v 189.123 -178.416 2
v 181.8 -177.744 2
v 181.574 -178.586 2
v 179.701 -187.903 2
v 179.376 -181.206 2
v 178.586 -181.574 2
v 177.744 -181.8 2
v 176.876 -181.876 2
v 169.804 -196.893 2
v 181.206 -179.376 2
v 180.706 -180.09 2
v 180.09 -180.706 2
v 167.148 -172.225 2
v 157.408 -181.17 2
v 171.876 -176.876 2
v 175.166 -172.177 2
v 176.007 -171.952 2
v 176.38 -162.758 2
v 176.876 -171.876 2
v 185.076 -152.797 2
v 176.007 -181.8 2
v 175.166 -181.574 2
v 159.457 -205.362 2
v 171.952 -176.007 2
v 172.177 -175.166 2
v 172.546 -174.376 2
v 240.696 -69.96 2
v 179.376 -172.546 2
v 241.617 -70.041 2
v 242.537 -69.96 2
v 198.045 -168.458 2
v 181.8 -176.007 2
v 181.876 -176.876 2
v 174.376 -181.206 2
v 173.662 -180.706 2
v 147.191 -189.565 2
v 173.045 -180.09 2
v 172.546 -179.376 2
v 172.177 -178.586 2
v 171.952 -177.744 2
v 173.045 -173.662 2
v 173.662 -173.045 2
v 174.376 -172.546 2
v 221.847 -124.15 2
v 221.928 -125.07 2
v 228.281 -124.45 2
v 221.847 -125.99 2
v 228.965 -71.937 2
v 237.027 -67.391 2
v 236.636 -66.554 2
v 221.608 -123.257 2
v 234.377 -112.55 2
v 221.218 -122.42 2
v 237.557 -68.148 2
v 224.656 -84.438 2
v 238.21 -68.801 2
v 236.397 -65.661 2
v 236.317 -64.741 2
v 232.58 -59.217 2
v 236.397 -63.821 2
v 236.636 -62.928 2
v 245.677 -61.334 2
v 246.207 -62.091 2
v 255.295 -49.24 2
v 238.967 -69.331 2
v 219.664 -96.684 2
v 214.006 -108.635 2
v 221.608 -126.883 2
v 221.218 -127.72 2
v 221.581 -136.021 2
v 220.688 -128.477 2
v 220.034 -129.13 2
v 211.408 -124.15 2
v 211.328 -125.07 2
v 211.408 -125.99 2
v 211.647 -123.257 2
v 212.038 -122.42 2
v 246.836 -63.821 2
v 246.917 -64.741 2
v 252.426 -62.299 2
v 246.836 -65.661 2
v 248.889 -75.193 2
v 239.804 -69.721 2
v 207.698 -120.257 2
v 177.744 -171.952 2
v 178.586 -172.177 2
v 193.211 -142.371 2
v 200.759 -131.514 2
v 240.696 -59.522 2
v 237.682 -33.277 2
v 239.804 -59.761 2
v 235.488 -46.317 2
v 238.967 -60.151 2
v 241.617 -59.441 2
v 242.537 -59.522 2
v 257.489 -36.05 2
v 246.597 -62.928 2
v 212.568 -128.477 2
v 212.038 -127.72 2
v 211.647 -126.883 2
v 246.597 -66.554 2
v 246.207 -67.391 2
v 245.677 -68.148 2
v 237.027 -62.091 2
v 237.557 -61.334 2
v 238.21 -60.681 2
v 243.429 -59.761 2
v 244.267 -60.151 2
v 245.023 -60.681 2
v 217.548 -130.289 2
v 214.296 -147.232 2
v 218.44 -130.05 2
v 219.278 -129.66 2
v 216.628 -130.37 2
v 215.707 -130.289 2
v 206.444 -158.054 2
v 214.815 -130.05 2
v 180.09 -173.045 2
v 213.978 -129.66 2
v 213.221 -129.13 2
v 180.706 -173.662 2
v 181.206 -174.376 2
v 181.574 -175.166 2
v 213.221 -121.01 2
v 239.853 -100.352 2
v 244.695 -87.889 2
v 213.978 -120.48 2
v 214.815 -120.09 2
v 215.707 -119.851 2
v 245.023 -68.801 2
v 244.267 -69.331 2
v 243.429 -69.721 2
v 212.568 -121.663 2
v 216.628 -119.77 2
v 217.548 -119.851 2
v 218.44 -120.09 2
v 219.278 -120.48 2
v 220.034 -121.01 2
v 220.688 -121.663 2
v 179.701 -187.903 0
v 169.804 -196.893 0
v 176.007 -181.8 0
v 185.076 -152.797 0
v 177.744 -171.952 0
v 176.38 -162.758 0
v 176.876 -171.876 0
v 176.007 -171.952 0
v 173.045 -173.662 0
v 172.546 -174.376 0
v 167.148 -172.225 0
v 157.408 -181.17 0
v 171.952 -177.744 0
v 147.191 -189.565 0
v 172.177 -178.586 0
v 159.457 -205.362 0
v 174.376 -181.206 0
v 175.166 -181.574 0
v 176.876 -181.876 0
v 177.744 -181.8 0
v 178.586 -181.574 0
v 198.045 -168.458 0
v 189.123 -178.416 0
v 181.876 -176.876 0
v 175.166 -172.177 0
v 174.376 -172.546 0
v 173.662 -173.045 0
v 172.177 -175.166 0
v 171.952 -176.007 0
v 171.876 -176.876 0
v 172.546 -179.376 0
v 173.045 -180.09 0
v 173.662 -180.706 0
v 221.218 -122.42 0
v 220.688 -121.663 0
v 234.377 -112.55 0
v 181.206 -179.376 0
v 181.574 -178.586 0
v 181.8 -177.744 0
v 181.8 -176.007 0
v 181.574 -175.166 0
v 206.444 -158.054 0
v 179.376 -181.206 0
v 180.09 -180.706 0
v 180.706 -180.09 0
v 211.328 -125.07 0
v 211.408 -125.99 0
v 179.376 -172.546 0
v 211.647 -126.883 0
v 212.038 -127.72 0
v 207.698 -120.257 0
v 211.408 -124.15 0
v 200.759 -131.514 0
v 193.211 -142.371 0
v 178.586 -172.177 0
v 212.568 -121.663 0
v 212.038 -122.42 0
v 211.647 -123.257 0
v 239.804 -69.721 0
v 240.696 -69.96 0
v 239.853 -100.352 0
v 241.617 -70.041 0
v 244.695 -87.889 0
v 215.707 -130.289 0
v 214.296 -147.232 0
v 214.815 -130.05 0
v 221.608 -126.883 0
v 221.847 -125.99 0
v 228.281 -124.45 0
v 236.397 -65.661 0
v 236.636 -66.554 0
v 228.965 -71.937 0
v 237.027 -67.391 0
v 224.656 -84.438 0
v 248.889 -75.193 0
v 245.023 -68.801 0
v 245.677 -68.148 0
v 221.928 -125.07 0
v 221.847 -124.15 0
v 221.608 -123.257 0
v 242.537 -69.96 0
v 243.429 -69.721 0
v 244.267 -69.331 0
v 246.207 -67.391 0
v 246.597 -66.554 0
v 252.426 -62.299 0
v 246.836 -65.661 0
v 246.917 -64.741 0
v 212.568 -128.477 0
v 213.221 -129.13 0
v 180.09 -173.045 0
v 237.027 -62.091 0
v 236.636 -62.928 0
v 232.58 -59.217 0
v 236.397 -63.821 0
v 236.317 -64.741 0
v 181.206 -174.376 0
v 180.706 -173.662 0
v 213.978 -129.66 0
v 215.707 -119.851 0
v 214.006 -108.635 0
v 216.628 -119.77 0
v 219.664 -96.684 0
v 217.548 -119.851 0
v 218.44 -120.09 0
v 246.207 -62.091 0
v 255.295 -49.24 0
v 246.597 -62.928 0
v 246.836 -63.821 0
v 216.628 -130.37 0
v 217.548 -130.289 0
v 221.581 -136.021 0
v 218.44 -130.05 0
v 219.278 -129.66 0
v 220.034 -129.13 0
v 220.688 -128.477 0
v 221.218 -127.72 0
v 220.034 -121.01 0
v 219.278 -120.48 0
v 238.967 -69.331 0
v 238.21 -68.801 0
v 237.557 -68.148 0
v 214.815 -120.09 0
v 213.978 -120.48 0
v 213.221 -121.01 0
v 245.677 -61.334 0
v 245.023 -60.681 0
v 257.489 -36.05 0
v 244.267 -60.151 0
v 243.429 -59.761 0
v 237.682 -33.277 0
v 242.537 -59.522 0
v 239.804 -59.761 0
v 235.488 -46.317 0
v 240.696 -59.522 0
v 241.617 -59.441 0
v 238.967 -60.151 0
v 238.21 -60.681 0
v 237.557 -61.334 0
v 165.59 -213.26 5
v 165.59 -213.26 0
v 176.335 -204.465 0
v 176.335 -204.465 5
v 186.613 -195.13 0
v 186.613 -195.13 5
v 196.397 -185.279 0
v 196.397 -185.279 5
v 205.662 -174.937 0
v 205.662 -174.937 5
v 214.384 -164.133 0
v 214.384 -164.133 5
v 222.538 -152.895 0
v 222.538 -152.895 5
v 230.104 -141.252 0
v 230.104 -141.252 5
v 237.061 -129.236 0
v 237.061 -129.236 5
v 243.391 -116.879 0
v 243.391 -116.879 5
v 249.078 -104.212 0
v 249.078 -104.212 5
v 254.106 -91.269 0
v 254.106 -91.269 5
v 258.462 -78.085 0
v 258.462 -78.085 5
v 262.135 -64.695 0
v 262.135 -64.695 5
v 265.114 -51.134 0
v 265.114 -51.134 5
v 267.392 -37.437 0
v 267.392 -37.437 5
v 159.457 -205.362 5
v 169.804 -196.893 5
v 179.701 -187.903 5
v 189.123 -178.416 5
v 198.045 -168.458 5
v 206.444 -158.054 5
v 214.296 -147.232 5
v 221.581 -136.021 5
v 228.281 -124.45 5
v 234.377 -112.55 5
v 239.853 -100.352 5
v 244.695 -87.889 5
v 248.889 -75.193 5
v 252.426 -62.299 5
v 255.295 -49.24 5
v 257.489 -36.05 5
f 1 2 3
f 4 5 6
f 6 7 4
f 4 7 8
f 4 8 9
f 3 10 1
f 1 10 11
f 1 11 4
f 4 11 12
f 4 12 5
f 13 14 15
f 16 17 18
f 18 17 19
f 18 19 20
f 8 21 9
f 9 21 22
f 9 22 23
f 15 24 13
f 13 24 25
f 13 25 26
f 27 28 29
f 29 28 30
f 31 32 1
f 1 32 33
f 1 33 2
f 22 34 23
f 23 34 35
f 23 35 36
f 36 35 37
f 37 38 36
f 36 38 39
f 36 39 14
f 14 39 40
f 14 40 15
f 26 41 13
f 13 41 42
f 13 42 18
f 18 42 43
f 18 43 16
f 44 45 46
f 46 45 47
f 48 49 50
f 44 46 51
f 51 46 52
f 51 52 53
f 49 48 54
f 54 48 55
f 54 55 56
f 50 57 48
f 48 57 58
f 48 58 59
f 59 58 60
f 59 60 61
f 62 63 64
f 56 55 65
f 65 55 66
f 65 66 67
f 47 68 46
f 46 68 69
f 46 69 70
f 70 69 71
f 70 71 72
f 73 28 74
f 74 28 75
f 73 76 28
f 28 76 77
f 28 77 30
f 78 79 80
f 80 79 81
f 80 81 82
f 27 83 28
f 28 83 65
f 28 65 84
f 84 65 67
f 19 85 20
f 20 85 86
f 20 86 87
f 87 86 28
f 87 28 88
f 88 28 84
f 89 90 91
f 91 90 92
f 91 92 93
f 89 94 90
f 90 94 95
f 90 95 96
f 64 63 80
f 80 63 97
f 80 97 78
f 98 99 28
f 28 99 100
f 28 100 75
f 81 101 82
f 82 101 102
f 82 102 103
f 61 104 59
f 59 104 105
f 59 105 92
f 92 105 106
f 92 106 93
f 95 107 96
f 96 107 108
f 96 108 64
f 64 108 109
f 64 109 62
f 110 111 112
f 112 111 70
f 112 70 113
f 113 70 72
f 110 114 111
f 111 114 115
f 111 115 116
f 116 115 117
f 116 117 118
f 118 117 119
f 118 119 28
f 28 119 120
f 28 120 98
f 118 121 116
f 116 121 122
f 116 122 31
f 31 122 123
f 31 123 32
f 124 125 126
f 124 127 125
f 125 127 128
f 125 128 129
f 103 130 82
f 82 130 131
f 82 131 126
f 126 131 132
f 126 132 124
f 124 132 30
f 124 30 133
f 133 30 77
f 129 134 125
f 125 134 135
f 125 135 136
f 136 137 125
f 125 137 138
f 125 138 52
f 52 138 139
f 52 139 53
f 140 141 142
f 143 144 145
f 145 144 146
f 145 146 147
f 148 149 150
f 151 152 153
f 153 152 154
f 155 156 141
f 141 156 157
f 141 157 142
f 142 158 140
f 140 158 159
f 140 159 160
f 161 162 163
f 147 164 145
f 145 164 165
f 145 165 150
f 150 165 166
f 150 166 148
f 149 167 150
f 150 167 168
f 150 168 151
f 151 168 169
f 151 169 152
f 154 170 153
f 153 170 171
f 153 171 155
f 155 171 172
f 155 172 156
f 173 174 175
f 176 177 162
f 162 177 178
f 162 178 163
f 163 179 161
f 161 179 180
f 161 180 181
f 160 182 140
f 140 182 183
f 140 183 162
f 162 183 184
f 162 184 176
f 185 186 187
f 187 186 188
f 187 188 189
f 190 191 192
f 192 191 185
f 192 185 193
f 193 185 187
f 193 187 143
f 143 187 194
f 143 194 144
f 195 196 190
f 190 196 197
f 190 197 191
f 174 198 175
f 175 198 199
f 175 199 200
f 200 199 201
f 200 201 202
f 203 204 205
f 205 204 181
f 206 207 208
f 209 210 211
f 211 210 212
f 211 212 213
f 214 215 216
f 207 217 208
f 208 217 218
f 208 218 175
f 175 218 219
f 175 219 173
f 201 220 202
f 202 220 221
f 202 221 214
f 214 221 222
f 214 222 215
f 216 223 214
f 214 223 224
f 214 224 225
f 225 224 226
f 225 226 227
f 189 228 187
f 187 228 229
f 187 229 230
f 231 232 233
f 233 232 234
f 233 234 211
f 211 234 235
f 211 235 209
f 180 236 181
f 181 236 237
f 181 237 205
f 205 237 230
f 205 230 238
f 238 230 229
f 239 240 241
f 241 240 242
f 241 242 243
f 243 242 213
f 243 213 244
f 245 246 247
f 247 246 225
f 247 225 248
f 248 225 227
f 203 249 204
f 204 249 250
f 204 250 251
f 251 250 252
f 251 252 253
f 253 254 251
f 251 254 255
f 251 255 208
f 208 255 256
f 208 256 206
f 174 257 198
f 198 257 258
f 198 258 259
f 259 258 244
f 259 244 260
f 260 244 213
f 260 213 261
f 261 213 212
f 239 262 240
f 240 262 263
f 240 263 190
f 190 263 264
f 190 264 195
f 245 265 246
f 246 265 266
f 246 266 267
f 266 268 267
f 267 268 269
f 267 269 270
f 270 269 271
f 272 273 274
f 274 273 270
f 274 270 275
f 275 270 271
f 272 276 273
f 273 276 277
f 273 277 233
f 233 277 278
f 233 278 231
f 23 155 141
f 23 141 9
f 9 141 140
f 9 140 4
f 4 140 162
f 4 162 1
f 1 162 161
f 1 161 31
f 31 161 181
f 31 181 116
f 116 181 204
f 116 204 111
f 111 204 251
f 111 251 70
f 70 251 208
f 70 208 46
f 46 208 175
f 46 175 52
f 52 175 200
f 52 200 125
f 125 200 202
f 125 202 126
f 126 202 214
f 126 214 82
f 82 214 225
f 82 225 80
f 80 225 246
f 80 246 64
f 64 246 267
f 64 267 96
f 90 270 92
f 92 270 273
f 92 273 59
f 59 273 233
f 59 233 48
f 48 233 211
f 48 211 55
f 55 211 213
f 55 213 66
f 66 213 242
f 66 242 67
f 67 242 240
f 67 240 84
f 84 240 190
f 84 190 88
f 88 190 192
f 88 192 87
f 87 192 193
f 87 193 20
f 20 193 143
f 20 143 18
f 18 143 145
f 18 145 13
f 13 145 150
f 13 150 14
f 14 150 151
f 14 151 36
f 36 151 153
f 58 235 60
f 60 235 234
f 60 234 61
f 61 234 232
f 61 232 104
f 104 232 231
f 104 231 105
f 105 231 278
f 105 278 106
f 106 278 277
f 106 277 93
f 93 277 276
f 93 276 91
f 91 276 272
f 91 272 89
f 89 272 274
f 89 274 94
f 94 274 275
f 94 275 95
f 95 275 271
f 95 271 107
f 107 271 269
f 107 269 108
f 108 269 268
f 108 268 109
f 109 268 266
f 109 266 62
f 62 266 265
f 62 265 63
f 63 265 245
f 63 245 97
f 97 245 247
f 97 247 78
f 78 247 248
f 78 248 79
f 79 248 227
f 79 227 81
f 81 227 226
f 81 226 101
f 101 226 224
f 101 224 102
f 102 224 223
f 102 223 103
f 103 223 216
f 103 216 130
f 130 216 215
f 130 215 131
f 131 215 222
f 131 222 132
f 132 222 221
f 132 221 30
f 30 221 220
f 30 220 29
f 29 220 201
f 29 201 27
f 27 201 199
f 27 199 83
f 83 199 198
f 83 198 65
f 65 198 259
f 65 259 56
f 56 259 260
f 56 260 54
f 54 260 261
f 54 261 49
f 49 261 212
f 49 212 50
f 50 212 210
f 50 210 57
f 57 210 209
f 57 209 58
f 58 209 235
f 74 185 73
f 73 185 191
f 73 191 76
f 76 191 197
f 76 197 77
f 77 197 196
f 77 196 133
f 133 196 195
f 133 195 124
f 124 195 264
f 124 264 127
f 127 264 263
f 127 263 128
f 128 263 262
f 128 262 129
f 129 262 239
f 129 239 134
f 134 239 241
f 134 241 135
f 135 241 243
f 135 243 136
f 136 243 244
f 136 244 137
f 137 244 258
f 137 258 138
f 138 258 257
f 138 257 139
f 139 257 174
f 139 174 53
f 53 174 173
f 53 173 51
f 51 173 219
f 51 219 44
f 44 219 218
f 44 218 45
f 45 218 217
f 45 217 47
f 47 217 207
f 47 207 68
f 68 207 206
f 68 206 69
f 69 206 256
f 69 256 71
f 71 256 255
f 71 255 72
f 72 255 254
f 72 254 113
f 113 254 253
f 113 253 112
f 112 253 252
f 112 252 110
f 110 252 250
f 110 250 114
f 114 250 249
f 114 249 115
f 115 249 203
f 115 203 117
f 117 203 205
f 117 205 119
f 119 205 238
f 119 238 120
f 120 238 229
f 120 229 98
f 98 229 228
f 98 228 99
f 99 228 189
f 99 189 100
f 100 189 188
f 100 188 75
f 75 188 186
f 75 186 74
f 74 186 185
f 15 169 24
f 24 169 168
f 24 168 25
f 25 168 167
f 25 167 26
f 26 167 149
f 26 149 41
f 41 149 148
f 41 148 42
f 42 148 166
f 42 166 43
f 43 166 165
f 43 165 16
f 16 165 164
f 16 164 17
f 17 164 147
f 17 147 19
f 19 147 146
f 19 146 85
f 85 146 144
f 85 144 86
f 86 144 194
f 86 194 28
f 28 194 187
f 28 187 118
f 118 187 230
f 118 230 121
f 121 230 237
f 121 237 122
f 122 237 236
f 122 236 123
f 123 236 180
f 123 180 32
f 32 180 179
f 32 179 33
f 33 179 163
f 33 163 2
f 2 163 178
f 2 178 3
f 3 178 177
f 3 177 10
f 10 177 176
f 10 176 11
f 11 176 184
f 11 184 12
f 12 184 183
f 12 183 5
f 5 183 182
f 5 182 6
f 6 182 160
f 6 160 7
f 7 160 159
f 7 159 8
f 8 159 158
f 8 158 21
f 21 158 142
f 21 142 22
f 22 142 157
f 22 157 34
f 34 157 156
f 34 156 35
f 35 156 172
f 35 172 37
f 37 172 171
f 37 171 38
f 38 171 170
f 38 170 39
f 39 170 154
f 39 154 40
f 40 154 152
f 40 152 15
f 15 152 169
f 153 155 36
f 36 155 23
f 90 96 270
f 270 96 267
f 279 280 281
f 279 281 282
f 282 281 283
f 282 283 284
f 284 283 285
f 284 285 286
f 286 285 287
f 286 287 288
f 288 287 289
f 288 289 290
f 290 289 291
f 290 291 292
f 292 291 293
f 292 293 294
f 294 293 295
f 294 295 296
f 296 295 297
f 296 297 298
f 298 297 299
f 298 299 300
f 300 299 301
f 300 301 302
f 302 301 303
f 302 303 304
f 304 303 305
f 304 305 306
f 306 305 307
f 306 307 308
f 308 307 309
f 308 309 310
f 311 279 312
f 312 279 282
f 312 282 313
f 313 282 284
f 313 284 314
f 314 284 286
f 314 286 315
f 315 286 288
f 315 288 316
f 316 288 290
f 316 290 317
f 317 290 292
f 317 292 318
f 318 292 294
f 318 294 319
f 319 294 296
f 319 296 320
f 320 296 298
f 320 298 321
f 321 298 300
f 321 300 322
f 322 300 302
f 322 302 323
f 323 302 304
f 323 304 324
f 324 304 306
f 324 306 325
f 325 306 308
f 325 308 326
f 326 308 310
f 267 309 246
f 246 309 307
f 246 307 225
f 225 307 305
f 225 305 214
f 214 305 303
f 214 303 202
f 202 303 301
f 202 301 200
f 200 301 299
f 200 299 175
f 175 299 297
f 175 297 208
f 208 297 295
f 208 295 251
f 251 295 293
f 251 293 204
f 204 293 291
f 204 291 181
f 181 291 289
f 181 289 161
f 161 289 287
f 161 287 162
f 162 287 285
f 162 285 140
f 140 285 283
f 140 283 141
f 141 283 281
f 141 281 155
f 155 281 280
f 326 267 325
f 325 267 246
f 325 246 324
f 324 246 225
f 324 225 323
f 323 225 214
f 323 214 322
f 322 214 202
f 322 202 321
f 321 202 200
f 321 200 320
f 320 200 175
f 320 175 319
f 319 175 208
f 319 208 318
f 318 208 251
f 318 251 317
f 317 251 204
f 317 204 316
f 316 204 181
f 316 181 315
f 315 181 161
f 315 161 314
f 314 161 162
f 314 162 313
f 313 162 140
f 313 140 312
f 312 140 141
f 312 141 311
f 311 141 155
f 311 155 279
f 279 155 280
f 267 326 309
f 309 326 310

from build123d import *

# Parameters (mm, degrees)
SALIENTE_EXTRUIR1_OUTLINE_R   = 260
SALIENTE_EXTRUIR1_OUTLINE_R_2 = 5
SALIENTE_EXTRUIR1_OUTLINE_R_3 = 5.3
SALIENTE_EXTRUIR1_OUTLINE_R_4 = 240
SALIENTE_EXTRUIR1_DEPTH       = 2
CROQUIS4_R                    = 270
CROQUIS4_R_2                  = 260
SALIENTE_EXTRUIR2_DEPTH       = 5
CORTAR_EXTRUIR6_DEPTH         = 5


# Read off the part's stored shape, not the designer's step: Saliente-Extruir1
with BuildPart() as part:
    # Saliente-Extruir1 outline → Saliente-Extruir1 (new body)
    with BuildSketch(Plane.XY):
        Circle(SALIENTE_EXTRUIR1_OUTLINE_R)
        with Locations((176.875677676, -176.875677676)):
            Circle(SALIENTE_EXTRUIR1_OUTLINE_R_2, mode=Mode.SUBTRACT)
        with Locations((216.627579108, -125.069991112)):
            Circle(SALIENTE_EXTRUIR1_OUTLINE_R_3, mode=Mode.SUBTRACT)
        with Locations((241.616669018, -64.740991341)):
            Circle(SALIENTE_EXTRUIR1_OUTLINE_R_3, mode=Mode.SUBTRACT)
        Circle(SALIENTE_EXTRUIR1_OUTLINE_R_4, mode=Mode.SUBTRACT)
        with Locations((250.139982224, 0)):
            Circle(SALIENTE_EXTRUIR1_OUTLINE_R_3, mode=Mode.SUBTRACT)
    extrude(amount=SALIENTE_EXTRUIR1_DEPTH)


with BuildPart() as body_2:
    # Croquis4 → Saliente-Extruir2 (new body)
    with BuildSketch(Plane(origin=(0, 0, 0), x_dir=(-1, 0, 0), z_dir=(0, 0, -1))):
        Circle(CROQUIS4_R)
        Circle(CROQUIS4_R_2, mode=Mode.SUBTRACT)
    extrude(amount=-SALIENTE_EXTRUIR2_DEPTH)


with BuildPart() as cortar_extruir6_tool:
    # Croquis6 → Cortar-Extruir6 (new body)
    with BuildSketch(Plane.XY.offset(5)):
        Polygon((0, 0), (344.486187081, -443.656453058), (-54.282671904, -619.031239208), (-747.430636211, -376.847010715), (-569.968054988, 500.026920035), (311.081465909, 596.065493403), (741.167250991, 61.58995466), (694.934547582, -97.295904018), align=None)
    extrude(amount=-CORTAR_EXTRUIR6_DEPTH)


with BuildPart() as part_1:
    add(part.part)

    # Cortar-Extruir6: cut by cortar_extruir6_tool
    add(cortar_extruir6_tool.part, mode=Mode.SUBTRACT)


with BuildPart() as body_2_1:
    add(body_2.part)

    # Cortar-Extruir6: cut by cortar_extruir6_tool
    add(cortar_extruir6_tool.part, mode=Mode.SUBTRACT)


solid = Compound([part_1.part, body_2_1.part])
